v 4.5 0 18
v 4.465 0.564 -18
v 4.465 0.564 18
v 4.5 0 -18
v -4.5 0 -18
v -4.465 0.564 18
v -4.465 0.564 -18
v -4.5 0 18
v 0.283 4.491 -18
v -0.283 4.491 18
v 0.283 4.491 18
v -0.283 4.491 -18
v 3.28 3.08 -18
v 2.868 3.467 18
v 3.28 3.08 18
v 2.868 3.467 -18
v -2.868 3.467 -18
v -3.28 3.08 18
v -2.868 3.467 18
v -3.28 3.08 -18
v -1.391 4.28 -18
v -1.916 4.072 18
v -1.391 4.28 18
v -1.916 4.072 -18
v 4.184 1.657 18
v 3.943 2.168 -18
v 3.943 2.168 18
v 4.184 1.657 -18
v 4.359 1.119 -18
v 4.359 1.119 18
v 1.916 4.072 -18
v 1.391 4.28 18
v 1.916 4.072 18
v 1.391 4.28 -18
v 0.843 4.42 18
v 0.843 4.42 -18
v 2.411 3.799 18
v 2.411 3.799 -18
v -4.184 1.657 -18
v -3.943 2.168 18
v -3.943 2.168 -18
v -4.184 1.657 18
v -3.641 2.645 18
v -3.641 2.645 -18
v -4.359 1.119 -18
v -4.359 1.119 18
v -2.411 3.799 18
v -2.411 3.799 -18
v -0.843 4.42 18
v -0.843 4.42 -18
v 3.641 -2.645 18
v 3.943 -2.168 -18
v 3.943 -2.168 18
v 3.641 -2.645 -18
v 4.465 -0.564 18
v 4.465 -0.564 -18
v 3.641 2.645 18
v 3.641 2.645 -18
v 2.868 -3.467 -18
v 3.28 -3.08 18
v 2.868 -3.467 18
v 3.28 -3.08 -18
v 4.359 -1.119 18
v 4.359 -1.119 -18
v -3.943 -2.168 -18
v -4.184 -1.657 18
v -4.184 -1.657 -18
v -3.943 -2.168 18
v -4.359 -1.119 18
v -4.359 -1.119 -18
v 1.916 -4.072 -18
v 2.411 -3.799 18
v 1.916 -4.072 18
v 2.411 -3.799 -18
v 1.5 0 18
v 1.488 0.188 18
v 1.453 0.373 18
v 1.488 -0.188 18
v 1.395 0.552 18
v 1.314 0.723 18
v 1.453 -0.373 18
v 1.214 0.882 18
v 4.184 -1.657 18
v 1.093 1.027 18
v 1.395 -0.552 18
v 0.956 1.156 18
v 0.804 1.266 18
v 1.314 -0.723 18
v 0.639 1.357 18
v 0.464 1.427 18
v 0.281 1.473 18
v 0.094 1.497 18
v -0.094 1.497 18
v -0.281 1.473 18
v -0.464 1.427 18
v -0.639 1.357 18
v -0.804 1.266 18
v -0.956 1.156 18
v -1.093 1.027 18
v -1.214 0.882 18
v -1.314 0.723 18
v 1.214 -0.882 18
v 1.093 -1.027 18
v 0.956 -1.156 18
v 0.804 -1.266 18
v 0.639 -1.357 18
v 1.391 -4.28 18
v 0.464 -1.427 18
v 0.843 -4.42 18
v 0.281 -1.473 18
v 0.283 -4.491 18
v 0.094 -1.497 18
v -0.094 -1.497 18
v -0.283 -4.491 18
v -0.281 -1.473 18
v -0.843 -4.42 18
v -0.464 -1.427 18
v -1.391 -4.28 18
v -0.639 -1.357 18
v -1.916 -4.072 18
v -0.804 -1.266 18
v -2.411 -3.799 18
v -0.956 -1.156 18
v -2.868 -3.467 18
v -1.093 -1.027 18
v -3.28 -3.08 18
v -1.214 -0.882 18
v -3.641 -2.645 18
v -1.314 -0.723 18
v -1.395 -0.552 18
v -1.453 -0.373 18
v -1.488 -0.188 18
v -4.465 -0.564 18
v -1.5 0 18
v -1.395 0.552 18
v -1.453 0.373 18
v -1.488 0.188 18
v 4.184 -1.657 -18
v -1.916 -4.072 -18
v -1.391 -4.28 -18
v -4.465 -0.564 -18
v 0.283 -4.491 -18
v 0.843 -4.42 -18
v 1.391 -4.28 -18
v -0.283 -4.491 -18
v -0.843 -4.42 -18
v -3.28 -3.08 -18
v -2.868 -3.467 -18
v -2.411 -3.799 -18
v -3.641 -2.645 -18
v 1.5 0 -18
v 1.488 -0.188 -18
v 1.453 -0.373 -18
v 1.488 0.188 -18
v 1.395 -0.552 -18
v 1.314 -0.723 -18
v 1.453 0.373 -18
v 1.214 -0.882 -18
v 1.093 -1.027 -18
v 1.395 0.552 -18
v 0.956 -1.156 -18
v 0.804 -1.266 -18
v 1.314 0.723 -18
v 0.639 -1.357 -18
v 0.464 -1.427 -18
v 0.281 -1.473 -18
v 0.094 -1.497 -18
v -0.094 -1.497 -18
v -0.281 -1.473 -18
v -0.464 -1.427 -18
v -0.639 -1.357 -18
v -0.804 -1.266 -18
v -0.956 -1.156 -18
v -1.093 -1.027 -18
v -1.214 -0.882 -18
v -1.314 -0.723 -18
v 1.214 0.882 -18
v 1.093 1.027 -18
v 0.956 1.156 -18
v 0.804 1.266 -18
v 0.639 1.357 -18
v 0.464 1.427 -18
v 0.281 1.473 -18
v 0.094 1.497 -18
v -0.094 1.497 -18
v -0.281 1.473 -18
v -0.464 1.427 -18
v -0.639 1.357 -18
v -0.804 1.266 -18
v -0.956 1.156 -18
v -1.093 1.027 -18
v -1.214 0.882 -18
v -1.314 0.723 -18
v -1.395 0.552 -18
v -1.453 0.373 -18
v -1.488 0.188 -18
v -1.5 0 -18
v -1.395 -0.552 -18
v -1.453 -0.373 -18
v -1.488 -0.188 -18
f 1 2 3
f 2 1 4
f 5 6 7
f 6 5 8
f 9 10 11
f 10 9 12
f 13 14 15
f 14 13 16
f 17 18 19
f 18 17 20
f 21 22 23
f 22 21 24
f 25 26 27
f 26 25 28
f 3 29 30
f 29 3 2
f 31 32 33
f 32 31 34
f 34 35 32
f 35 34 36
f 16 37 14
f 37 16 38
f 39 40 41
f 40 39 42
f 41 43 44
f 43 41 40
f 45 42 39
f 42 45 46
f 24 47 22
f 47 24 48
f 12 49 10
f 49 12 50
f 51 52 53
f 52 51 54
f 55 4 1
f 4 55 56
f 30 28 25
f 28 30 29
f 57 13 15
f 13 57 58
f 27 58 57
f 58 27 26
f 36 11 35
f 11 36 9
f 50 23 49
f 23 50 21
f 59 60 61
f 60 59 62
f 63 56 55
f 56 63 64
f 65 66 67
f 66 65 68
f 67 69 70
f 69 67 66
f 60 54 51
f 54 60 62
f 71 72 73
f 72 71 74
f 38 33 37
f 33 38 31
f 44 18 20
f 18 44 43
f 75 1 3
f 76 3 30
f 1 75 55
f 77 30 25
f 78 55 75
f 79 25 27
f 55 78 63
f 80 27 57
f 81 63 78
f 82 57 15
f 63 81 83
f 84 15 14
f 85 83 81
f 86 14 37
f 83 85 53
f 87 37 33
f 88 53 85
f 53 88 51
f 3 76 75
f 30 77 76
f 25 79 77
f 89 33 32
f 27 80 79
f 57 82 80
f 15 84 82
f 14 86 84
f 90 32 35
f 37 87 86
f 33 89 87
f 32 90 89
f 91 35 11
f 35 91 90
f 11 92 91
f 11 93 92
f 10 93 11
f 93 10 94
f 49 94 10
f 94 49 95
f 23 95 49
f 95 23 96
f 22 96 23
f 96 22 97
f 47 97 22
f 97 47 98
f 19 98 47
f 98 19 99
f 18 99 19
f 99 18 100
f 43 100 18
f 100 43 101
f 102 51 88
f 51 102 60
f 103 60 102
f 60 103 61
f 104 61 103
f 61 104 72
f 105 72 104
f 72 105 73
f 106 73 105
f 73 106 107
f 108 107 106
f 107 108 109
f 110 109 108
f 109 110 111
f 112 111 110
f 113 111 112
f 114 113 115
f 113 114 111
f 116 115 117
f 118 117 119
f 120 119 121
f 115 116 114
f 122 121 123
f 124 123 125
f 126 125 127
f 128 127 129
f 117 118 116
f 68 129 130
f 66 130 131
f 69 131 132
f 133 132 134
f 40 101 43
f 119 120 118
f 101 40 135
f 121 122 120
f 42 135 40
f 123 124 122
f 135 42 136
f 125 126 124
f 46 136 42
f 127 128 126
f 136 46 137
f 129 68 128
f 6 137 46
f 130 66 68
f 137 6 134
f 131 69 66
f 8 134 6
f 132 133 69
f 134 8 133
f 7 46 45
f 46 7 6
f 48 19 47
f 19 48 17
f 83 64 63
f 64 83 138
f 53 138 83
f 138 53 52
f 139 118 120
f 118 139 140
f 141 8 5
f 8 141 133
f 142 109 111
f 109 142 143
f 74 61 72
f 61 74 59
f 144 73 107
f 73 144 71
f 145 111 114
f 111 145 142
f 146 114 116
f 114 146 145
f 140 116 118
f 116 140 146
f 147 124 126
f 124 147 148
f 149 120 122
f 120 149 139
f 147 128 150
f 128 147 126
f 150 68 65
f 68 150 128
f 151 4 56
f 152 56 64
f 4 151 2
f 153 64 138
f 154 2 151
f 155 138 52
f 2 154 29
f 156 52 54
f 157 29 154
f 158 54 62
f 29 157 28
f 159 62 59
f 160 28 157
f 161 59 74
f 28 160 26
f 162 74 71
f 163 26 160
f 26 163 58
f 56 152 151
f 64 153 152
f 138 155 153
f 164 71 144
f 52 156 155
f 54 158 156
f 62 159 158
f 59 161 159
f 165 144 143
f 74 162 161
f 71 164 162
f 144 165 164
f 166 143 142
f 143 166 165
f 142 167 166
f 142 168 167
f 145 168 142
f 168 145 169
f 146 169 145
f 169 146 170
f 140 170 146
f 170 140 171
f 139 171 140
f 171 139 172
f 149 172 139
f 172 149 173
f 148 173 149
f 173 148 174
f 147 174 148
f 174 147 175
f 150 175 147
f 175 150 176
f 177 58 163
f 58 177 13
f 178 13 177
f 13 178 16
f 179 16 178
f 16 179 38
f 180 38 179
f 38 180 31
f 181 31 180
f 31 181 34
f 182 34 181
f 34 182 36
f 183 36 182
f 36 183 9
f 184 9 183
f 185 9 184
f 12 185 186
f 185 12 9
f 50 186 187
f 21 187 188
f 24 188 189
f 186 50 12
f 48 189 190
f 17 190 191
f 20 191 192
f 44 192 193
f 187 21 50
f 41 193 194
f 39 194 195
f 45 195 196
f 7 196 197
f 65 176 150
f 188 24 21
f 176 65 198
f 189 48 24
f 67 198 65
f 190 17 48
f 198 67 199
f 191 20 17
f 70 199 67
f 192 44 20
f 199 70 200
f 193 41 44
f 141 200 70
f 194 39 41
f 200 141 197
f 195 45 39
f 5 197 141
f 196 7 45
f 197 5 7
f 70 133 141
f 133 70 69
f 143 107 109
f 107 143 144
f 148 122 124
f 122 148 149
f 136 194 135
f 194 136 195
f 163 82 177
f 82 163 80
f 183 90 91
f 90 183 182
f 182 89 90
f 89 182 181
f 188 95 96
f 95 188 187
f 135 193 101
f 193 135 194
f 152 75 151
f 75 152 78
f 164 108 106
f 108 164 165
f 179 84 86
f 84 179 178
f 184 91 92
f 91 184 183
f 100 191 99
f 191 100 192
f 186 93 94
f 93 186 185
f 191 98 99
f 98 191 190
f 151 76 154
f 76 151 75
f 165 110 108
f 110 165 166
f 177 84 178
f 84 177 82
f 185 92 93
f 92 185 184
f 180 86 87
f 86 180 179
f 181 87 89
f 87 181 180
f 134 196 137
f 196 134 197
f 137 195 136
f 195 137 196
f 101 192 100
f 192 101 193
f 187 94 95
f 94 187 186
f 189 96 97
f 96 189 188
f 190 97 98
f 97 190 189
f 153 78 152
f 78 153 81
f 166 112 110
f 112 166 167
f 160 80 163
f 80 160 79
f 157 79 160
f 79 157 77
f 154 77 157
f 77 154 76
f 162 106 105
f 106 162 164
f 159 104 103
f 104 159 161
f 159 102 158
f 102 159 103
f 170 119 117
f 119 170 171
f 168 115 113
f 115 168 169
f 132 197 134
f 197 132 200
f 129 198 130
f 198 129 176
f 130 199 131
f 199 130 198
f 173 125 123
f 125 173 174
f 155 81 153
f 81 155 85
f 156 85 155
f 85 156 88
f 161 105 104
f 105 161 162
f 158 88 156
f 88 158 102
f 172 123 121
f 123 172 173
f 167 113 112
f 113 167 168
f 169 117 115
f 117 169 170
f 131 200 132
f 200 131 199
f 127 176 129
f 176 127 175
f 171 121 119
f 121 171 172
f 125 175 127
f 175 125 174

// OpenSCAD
$fn = 50;


difference() {
	union() {
		translate(v = [0, 0, -18.0000000000]) {
			cylinder(h = 36, r = 4.5000000000);
		}
	}
	union() {
		translate(v = [0, 0, -100.0000000000]) {
			cylinder(h = 200, r = 1.5000000000);
		}
	}
}
